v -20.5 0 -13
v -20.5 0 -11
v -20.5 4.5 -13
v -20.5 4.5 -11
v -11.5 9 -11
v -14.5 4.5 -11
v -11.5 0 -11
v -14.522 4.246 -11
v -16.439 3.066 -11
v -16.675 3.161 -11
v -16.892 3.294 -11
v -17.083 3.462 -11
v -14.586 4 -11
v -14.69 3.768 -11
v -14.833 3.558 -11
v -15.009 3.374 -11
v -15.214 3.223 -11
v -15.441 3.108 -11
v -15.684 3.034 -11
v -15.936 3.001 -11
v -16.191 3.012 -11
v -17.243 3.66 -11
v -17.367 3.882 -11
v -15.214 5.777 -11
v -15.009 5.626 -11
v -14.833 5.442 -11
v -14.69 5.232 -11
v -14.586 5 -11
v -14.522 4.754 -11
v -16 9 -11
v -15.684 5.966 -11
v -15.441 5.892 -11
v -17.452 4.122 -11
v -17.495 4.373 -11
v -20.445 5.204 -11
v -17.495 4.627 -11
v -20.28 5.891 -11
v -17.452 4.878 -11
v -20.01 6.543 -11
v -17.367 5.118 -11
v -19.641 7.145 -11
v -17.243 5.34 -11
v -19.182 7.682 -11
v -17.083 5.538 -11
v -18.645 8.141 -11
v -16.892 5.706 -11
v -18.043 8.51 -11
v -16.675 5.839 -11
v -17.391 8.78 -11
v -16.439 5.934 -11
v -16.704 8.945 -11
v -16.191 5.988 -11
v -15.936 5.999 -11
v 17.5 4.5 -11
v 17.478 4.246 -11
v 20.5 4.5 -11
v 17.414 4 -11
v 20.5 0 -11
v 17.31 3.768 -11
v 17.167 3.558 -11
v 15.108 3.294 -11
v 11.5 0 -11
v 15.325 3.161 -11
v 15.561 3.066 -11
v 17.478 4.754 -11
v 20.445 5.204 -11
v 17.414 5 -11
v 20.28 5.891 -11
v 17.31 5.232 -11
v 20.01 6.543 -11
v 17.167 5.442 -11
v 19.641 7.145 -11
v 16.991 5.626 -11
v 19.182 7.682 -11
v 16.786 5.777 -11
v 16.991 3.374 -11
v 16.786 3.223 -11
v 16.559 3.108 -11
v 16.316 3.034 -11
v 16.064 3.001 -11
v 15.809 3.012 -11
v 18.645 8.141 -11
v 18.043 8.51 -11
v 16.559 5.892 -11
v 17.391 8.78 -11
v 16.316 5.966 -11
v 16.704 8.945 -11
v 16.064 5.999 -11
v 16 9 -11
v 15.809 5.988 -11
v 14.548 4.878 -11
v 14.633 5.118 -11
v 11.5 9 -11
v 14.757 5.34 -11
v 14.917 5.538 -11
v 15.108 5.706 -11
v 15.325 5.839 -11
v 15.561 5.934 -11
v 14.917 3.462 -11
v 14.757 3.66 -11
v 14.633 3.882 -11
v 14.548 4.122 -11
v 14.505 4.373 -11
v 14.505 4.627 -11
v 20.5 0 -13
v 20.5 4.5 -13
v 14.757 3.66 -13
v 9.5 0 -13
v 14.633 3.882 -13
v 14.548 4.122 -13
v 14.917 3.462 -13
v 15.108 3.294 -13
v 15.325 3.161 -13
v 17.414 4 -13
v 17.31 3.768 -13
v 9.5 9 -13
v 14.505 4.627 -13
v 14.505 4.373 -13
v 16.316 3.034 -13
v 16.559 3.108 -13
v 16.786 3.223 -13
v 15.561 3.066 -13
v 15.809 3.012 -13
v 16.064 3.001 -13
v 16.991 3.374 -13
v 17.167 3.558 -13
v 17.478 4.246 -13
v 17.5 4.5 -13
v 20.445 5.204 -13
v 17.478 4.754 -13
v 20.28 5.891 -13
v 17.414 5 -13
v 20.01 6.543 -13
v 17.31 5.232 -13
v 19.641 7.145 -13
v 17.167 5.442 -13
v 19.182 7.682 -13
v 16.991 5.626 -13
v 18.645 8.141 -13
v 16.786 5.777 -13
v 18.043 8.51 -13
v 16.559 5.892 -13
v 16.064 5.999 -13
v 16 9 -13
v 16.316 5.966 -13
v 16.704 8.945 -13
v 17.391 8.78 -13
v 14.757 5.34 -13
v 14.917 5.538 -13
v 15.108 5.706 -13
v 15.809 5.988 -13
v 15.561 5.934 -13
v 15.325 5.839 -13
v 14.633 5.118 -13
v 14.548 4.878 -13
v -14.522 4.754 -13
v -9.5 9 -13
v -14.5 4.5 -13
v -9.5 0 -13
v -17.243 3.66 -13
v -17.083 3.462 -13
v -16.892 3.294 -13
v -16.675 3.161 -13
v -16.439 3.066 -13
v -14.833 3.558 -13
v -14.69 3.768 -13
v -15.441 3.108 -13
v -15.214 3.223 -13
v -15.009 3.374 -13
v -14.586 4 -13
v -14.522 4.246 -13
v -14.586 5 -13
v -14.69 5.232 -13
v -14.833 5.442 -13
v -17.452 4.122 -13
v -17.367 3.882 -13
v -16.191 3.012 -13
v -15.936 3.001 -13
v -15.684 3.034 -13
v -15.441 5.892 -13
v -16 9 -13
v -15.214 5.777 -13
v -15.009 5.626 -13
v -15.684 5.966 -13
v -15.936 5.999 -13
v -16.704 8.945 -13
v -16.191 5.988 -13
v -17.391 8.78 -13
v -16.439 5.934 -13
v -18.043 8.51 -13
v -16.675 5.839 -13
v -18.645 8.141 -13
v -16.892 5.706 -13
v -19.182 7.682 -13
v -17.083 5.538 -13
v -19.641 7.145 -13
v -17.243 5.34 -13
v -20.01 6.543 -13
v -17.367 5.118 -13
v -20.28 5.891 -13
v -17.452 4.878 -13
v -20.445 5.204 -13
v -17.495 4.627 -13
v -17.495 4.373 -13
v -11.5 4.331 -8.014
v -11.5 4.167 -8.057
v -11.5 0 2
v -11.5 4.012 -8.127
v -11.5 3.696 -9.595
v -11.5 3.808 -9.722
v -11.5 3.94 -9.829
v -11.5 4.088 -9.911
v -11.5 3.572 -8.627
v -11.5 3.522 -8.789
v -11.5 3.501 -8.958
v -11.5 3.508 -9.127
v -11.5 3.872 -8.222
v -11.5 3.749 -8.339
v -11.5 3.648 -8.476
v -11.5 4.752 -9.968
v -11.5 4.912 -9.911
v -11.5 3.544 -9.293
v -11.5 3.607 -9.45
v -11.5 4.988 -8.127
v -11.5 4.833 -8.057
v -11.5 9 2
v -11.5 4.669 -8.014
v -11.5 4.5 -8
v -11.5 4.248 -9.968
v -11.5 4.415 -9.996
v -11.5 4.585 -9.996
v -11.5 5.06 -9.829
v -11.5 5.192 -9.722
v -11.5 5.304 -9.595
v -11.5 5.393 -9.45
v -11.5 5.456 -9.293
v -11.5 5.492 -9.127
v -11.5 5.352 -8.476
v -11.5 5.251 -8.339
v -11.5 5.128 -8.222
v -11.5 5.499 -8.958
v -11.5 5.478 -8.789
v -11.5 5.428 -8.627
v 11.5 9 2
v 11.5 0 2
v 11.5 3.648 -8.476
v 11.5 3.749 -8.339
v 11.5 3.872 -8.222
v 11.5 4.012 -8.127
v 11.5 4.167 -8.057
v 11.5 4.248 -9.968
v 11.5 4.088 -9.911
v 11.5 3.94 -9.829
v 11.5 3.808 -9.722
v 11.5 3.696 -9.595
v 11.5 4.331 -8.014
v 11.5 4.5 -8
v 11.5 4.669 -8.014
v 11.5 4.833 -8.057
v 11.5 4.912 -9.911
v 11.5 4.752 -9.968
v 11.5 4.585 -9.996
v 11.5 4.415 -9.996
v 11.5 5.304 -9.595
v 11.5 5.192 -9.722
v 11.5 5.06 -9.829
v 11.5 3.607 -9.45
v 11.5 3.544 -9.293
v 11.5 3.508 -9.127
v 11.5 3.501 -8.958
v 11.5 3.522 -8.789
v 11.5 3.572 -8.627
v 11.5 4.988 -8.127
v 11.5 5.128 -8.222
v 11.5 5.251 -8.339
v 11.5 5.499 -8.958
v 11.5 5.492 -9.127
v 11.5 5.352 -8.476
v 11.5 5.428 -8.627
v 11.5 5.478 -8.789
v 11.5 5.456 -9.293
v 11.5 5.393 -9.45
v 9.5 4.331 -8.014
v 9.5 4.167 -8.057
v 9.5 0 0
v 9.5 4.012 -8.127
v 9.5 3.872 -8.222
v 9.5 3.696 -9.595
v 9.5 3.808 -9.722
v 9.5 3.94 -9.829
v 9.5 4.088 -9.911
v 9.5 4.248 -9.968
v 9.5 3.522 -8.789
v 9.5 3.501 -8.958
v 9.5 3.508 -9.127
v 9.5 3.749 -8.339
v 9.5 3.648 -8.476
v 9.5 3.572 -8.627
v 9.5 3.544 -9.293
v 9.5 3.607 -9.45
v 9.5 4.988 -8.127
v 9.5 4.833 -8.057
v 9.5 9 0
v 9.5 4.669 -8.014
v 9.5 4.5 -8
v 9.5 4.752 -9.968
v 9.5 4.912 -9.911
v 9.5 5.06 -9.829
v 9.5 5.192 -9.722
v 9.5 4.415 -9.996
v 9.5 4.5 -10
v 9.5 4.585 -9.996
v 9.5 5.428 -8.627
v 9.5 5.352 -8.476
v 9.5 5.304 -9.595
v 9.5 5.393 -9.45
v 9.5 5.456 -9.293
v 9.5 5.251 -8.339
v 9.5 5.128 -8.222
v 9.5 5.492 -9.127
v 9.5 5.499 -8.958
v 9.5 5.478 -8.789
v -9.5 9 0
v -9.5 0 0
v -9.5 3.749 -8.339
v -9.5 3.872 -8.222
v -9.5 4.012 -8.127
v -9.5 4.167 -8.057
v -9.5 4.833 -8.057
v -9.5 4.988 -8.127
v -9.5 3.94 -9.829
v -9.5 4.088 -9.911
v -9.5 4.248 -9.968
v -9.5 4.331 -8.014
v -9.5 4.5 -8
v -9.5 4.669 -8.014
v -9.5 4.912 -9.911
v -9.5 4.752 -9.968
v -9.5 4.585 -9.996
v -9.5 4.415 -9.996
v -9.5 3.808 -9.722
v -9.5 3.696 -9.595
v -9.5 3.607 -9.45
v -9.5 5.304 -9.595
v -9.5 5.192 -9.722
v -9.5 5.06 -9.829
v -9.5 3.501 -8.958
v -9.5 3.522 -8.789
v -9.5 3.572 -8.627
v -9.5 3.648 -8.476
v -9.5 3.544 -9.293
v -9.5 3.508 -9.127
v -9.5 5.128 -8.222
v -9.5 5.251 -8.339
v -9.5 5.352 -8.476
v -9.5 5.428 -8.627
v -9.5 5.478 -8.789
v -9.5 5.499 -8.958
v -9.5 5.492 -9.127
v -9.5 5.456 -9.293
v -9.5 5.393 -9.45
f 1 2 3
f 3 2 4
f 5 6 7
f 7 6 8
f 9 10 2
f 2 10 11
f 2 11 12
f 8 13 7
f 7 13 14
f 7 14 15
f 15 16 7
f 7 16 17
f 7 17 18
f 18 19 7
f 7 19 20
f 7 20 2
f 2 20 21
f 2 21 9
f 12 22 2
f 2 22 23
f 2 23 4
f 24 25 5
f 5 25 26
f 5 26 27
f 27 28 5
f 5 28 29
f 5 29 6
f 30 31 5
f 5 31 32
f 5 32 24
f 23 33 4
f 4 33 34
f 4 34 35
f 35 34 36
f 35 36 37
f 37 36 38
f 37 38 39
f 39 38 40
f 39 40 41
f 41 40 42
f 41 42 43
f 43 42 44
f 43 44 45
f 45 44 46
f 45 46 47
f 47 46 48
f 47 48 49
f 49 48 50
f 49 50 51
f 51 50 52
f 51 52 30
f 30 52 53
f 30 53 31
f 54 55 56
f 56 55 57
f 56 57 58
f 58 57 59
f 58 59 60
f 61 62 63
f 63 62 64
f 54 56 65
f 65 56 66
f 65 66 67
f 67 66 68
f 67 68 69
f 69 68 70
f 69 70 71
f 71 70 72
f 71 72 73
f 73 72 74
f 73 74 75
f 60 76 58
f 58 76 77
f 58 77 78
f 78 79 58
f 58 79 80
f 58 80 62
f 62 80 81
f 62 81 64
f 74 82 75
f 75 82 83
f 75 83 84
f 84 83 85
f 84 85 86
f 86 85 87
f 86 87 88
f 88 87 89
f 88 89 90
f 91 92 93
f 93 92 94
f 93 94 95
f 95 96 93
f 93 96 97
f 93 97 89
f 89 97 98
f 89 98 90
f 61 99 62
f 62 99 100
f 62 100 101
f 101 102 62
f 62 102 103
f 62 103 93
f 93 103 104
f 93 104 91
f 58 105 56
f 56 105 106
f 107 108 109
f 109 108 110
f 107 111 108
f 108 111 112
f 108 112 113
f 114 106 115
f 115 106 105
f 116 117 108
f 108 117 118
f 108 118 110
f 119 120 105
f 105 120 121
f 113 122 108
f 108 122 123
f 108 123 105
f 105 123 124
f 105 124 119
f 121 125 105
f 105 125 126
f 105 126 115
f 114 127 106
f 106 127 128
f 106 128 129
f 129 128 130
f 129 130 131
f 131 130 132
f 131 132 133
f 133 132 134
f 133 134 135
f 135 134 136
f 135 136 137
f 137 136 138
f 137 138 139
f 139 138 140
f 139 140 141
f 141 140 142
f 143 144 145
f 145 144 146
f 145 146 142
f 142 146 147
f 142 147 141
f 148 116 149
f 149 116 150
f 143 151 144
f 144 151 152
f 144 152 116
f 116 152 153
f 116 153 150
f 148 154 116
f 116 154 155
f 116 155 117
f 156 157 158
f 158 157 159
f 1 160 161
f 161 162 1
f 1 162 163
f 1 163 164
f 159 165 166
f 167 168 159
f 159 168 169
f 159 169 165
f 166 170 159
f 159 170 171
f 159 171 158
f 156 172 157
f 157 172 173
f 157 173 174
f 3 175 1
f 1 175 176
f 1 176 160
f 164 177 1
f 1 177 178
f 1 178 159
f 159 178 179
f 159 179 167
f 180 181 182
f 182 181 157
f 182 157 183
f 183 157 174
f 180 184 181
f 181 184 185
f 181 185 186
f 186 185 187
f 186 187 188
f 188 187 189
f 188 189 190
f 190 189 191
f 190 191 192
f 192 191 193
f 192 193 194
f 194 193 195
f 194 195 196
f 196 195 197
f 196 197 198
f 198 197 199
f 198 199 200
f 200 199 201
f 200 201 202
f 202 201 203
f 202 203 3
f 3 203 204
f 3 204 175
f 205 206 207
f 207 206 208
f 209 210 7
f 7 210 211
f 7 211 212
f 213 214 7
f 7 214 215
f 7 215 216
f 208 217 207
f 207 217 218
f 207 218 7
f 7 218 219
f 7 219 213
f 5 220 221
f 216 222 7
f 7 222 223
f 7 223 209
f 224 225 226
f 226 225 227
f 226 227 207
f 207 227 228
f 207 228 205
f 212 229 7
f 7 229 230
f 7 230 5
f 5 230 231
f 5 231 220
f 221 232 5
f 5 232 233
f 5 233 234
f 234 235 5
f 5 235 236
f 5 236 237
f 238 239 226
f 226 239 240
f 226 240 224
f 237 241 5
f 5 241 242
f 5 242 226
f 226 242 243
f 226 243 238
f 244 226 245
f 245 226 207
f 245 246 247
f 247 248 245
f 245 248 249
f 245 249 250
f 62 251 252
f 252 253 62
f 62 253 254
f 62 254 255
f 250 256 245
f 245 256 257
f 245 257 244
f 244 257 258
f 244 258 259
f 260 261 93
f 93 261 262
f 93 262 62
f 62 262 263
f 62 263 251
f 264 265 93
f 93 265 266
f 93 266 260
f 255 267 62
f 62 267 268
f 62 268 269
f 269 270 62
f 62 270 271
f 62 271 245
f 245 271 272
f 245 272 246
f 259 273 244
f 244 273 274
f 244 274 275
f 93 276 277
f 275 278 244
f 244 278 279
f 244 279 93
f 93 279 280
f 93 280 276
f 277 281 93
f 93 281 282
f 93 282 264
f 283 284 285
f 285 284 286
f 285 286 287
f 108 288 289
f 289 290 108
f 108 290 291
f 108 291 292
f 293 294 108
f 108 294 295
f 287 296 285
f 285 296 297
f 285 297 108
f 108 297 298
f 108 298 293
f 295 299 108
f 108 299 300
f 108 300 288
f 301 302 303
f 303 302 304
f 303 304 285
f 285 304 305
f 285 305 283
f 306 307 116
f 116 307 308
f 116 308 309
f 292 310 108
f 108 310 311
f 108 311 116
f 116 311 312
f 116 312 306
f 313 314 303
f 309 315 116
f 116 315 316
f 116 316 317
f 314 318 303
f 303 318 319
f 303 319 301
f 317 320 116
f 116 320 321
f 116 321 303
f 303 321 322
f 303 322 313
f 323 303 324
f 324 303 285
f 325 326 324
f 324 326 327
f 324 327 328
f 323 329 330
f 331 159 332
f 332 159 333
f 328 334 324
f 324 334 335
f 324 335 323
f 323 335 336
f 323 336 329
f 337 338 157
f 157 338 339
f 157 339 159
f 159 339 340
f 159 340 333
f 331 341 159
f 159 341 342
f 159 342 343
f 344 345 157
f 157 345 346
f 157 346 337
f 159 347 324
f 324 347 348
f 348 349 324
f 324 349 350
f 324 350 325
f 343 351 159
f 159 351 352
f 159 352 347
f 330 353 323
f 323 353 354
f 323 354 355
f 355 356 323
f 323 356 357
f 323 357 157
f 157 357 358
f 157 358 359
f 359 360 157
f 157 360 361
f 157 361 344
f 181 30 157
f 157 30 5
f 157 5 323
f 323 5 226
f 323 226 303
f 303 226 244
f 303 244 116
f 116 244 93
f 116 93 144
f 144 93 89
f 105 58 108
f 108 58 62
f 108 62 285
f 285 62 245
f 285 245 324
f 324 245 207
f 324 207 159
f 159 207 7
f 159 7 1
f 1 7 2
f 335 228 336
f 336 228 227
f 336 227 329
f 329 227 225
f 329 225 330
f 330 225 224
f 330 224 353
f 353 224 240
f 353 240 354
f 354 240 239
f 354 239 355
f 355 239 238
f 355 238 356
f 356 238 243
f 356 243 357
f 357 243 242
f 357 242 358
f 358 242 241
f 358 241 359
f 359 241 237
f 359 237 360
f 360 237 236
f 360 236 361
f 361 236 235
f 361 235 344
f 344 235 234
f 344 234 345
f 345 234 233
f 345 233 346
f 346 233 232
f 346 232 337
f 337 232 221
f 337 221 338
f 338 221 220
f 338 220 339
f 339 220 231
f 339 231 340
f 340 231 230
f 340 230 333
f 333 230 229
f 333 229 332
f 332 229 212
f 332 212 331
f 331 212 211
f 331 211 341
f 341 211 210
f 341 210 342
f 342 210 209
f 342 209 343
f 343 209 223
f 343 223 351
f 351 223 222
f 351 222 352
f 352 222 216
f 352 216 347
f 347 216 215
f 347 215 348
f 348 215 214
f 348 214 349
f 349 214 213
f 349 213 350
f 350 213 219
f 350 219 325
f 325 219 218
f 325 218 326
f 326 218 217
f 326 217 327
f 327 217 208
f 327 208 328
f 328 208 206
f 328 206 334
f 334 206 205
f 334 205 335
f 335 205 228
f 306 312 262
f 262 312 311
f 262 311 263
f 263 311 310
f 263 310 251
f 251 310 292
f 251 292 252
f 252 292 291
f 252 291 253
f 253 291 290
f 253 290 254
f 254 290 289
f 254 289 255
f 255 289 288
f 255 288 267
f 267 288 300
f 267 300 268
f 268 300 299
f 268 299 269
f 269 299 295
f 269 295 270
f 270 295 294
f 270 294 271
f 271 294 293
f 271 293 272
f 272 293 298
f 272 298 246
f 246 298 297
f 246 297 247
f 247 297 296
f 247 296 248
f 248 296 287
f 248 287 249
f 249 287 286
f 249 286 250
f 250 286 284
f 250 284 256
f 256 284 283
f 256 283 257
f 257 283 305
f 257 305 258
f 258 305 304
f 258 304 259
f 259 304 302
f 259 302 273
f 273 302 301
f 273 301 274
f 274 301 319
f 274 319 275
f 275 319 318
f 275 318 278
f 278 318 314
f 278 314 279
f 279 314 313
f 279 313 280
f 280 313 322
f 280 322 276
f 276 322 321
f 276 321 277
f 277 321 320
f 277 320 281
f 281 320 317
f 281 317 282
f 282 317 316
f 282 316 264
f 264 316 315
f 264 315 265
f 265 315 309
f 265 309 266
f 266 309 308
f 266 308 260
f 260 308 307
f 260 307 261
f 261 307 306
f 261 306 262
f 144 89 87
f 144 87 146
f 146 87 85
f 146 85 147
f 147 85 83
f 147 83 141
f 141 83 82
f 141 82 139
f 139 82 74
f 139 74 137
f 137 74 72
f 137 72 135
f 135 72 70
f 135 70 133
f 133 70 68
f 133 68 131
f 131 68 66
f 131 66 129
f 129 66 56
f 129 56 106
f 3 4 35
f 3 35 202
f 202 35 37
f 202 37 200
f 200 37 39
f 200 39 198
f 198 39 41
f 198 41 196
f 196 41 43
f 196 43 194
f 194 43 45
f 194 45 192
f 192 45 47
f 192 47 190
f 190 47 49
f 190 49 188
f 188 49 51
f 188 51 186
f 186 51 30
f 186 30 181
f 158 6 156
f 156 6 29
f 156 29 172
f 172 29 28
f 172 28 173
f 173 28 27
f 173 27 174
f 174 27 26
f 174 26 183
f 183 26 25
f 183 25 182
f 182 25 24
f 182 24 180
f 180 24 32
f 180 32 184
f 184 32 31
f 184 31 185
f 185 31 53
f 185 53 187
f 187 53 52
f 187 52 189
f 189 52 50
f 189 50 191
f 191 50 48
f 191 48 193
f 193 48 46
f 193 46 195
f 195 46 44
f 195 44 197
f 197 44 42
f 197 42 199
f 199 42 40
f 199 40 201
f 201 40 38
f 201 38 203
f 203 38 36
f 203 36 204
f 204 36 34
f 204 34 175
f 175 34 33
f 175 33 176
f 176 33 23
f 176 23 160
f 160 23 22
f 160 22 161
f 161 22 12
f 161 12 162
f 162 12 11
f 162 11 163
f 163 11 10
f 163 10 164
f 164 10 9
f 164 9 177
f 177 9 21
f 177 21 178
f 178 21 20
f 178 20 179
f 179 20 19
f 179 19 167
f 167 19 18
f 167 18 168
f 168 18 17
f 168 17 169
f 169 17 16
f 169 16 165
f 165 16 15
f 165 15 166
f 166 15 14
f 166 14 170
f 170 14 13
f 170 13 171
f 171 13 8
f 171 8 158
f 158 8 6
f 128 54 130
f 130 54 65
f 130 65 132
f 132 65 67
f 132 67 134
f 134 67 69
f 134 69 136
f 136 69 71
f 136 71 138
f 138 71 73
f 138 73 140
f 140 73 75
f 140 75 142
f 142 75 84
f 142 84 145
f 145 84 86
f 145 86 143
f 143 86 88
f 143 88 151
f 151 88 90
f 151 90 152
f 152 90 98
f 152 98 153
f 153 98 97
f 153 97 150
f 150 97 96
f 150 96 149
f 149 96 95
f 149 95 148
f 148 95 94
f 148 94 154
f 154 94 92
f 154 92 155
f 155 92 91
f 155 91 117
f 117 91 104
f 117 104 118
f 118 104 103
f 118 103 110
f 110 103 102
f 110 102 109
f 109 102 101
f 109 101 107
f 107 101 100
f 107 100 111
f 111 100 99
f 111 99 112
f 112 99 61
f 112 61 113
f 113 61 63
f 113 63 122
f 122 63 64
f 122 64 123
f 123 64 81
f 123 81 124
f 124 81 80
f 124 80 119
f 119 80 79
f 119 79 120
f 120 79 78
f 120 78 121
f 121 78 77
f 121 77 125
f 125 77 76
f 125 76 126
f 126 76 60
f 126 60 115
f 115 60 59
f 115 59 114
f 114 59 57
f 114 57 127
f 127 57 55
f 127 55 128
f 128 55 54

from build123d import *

# Parameters (mm, degrees)
BOSS_EXTRUDE1_DEPTH = 9
SKETCH2_R           = 1
CUT_EXTRUDE1_DEPTH  = 36.693136595
SKETCH3_R           = 1.5
CUT_EXTRUDE2_DEPTH  = 26.889186932


with BuildPart() as part:
    # Sketch1 → Boss-Extrude1 (new body)
    with BuildSketch(Plane(origin=(0, 0, 0), x_dir=(1, 0, 0), z_dir=(0, 1, 0))):
        Polygon((-20.5, 13), (-9.5, 13), (-9.5, 0), (9.5, 0), (9.5, 13), (20.5, 13), (20.5, 11), (11.5, 11), (11.5, -2), (-11.5, -2), (-11.5, 11), (-20.5, 11), align=None)
    extrude(amount=BOSS_EXTRUDE1_DEPTH)

    # Sketch2 → Cut-Extrude1 (cut, through all)
    with BuildSketch(Plane.ZY.offset(11.5)):
        with Locations((-9, 4.5)):
            Circle(SKETCH2_R)
    extrude(amount=-CUT_EXTRUDE1_DEPTH, mode=Mode.SUBTRACT)

    # Sketch3 → Cut-Extrude2 (cut, through all)
    with BuildSketch(Plane.XY.offset(-11)):
        with Locations((-16, 4.5)):
            Circle(SKETCH3_R)
        with BuildLine():
            Line((-20.5, 9), (-20.5, 4.5))
            ThreePointArc((-20.5, 4.5), (-19.181980515, 7.681980515), (-16, 9))
            Line((-16, 9), (-20.5, 9))
        make_face()
        with BuildLine():
            Line((20.5, 4.5), (20.5, 9))
            Line((20.5, 9), (16, 9))
            ThreePointArc((16, 9), (19.181980515, 7.681980515), (20.5, 4.5))
        make_face()
        with Locations((16, 4.5)):
            Circle(SKETCH3_R)
    extrude(amount=-CUT_EXTRUDE2_DEPTH, mode=Mode.SUBTRACT)


solid = part.part
